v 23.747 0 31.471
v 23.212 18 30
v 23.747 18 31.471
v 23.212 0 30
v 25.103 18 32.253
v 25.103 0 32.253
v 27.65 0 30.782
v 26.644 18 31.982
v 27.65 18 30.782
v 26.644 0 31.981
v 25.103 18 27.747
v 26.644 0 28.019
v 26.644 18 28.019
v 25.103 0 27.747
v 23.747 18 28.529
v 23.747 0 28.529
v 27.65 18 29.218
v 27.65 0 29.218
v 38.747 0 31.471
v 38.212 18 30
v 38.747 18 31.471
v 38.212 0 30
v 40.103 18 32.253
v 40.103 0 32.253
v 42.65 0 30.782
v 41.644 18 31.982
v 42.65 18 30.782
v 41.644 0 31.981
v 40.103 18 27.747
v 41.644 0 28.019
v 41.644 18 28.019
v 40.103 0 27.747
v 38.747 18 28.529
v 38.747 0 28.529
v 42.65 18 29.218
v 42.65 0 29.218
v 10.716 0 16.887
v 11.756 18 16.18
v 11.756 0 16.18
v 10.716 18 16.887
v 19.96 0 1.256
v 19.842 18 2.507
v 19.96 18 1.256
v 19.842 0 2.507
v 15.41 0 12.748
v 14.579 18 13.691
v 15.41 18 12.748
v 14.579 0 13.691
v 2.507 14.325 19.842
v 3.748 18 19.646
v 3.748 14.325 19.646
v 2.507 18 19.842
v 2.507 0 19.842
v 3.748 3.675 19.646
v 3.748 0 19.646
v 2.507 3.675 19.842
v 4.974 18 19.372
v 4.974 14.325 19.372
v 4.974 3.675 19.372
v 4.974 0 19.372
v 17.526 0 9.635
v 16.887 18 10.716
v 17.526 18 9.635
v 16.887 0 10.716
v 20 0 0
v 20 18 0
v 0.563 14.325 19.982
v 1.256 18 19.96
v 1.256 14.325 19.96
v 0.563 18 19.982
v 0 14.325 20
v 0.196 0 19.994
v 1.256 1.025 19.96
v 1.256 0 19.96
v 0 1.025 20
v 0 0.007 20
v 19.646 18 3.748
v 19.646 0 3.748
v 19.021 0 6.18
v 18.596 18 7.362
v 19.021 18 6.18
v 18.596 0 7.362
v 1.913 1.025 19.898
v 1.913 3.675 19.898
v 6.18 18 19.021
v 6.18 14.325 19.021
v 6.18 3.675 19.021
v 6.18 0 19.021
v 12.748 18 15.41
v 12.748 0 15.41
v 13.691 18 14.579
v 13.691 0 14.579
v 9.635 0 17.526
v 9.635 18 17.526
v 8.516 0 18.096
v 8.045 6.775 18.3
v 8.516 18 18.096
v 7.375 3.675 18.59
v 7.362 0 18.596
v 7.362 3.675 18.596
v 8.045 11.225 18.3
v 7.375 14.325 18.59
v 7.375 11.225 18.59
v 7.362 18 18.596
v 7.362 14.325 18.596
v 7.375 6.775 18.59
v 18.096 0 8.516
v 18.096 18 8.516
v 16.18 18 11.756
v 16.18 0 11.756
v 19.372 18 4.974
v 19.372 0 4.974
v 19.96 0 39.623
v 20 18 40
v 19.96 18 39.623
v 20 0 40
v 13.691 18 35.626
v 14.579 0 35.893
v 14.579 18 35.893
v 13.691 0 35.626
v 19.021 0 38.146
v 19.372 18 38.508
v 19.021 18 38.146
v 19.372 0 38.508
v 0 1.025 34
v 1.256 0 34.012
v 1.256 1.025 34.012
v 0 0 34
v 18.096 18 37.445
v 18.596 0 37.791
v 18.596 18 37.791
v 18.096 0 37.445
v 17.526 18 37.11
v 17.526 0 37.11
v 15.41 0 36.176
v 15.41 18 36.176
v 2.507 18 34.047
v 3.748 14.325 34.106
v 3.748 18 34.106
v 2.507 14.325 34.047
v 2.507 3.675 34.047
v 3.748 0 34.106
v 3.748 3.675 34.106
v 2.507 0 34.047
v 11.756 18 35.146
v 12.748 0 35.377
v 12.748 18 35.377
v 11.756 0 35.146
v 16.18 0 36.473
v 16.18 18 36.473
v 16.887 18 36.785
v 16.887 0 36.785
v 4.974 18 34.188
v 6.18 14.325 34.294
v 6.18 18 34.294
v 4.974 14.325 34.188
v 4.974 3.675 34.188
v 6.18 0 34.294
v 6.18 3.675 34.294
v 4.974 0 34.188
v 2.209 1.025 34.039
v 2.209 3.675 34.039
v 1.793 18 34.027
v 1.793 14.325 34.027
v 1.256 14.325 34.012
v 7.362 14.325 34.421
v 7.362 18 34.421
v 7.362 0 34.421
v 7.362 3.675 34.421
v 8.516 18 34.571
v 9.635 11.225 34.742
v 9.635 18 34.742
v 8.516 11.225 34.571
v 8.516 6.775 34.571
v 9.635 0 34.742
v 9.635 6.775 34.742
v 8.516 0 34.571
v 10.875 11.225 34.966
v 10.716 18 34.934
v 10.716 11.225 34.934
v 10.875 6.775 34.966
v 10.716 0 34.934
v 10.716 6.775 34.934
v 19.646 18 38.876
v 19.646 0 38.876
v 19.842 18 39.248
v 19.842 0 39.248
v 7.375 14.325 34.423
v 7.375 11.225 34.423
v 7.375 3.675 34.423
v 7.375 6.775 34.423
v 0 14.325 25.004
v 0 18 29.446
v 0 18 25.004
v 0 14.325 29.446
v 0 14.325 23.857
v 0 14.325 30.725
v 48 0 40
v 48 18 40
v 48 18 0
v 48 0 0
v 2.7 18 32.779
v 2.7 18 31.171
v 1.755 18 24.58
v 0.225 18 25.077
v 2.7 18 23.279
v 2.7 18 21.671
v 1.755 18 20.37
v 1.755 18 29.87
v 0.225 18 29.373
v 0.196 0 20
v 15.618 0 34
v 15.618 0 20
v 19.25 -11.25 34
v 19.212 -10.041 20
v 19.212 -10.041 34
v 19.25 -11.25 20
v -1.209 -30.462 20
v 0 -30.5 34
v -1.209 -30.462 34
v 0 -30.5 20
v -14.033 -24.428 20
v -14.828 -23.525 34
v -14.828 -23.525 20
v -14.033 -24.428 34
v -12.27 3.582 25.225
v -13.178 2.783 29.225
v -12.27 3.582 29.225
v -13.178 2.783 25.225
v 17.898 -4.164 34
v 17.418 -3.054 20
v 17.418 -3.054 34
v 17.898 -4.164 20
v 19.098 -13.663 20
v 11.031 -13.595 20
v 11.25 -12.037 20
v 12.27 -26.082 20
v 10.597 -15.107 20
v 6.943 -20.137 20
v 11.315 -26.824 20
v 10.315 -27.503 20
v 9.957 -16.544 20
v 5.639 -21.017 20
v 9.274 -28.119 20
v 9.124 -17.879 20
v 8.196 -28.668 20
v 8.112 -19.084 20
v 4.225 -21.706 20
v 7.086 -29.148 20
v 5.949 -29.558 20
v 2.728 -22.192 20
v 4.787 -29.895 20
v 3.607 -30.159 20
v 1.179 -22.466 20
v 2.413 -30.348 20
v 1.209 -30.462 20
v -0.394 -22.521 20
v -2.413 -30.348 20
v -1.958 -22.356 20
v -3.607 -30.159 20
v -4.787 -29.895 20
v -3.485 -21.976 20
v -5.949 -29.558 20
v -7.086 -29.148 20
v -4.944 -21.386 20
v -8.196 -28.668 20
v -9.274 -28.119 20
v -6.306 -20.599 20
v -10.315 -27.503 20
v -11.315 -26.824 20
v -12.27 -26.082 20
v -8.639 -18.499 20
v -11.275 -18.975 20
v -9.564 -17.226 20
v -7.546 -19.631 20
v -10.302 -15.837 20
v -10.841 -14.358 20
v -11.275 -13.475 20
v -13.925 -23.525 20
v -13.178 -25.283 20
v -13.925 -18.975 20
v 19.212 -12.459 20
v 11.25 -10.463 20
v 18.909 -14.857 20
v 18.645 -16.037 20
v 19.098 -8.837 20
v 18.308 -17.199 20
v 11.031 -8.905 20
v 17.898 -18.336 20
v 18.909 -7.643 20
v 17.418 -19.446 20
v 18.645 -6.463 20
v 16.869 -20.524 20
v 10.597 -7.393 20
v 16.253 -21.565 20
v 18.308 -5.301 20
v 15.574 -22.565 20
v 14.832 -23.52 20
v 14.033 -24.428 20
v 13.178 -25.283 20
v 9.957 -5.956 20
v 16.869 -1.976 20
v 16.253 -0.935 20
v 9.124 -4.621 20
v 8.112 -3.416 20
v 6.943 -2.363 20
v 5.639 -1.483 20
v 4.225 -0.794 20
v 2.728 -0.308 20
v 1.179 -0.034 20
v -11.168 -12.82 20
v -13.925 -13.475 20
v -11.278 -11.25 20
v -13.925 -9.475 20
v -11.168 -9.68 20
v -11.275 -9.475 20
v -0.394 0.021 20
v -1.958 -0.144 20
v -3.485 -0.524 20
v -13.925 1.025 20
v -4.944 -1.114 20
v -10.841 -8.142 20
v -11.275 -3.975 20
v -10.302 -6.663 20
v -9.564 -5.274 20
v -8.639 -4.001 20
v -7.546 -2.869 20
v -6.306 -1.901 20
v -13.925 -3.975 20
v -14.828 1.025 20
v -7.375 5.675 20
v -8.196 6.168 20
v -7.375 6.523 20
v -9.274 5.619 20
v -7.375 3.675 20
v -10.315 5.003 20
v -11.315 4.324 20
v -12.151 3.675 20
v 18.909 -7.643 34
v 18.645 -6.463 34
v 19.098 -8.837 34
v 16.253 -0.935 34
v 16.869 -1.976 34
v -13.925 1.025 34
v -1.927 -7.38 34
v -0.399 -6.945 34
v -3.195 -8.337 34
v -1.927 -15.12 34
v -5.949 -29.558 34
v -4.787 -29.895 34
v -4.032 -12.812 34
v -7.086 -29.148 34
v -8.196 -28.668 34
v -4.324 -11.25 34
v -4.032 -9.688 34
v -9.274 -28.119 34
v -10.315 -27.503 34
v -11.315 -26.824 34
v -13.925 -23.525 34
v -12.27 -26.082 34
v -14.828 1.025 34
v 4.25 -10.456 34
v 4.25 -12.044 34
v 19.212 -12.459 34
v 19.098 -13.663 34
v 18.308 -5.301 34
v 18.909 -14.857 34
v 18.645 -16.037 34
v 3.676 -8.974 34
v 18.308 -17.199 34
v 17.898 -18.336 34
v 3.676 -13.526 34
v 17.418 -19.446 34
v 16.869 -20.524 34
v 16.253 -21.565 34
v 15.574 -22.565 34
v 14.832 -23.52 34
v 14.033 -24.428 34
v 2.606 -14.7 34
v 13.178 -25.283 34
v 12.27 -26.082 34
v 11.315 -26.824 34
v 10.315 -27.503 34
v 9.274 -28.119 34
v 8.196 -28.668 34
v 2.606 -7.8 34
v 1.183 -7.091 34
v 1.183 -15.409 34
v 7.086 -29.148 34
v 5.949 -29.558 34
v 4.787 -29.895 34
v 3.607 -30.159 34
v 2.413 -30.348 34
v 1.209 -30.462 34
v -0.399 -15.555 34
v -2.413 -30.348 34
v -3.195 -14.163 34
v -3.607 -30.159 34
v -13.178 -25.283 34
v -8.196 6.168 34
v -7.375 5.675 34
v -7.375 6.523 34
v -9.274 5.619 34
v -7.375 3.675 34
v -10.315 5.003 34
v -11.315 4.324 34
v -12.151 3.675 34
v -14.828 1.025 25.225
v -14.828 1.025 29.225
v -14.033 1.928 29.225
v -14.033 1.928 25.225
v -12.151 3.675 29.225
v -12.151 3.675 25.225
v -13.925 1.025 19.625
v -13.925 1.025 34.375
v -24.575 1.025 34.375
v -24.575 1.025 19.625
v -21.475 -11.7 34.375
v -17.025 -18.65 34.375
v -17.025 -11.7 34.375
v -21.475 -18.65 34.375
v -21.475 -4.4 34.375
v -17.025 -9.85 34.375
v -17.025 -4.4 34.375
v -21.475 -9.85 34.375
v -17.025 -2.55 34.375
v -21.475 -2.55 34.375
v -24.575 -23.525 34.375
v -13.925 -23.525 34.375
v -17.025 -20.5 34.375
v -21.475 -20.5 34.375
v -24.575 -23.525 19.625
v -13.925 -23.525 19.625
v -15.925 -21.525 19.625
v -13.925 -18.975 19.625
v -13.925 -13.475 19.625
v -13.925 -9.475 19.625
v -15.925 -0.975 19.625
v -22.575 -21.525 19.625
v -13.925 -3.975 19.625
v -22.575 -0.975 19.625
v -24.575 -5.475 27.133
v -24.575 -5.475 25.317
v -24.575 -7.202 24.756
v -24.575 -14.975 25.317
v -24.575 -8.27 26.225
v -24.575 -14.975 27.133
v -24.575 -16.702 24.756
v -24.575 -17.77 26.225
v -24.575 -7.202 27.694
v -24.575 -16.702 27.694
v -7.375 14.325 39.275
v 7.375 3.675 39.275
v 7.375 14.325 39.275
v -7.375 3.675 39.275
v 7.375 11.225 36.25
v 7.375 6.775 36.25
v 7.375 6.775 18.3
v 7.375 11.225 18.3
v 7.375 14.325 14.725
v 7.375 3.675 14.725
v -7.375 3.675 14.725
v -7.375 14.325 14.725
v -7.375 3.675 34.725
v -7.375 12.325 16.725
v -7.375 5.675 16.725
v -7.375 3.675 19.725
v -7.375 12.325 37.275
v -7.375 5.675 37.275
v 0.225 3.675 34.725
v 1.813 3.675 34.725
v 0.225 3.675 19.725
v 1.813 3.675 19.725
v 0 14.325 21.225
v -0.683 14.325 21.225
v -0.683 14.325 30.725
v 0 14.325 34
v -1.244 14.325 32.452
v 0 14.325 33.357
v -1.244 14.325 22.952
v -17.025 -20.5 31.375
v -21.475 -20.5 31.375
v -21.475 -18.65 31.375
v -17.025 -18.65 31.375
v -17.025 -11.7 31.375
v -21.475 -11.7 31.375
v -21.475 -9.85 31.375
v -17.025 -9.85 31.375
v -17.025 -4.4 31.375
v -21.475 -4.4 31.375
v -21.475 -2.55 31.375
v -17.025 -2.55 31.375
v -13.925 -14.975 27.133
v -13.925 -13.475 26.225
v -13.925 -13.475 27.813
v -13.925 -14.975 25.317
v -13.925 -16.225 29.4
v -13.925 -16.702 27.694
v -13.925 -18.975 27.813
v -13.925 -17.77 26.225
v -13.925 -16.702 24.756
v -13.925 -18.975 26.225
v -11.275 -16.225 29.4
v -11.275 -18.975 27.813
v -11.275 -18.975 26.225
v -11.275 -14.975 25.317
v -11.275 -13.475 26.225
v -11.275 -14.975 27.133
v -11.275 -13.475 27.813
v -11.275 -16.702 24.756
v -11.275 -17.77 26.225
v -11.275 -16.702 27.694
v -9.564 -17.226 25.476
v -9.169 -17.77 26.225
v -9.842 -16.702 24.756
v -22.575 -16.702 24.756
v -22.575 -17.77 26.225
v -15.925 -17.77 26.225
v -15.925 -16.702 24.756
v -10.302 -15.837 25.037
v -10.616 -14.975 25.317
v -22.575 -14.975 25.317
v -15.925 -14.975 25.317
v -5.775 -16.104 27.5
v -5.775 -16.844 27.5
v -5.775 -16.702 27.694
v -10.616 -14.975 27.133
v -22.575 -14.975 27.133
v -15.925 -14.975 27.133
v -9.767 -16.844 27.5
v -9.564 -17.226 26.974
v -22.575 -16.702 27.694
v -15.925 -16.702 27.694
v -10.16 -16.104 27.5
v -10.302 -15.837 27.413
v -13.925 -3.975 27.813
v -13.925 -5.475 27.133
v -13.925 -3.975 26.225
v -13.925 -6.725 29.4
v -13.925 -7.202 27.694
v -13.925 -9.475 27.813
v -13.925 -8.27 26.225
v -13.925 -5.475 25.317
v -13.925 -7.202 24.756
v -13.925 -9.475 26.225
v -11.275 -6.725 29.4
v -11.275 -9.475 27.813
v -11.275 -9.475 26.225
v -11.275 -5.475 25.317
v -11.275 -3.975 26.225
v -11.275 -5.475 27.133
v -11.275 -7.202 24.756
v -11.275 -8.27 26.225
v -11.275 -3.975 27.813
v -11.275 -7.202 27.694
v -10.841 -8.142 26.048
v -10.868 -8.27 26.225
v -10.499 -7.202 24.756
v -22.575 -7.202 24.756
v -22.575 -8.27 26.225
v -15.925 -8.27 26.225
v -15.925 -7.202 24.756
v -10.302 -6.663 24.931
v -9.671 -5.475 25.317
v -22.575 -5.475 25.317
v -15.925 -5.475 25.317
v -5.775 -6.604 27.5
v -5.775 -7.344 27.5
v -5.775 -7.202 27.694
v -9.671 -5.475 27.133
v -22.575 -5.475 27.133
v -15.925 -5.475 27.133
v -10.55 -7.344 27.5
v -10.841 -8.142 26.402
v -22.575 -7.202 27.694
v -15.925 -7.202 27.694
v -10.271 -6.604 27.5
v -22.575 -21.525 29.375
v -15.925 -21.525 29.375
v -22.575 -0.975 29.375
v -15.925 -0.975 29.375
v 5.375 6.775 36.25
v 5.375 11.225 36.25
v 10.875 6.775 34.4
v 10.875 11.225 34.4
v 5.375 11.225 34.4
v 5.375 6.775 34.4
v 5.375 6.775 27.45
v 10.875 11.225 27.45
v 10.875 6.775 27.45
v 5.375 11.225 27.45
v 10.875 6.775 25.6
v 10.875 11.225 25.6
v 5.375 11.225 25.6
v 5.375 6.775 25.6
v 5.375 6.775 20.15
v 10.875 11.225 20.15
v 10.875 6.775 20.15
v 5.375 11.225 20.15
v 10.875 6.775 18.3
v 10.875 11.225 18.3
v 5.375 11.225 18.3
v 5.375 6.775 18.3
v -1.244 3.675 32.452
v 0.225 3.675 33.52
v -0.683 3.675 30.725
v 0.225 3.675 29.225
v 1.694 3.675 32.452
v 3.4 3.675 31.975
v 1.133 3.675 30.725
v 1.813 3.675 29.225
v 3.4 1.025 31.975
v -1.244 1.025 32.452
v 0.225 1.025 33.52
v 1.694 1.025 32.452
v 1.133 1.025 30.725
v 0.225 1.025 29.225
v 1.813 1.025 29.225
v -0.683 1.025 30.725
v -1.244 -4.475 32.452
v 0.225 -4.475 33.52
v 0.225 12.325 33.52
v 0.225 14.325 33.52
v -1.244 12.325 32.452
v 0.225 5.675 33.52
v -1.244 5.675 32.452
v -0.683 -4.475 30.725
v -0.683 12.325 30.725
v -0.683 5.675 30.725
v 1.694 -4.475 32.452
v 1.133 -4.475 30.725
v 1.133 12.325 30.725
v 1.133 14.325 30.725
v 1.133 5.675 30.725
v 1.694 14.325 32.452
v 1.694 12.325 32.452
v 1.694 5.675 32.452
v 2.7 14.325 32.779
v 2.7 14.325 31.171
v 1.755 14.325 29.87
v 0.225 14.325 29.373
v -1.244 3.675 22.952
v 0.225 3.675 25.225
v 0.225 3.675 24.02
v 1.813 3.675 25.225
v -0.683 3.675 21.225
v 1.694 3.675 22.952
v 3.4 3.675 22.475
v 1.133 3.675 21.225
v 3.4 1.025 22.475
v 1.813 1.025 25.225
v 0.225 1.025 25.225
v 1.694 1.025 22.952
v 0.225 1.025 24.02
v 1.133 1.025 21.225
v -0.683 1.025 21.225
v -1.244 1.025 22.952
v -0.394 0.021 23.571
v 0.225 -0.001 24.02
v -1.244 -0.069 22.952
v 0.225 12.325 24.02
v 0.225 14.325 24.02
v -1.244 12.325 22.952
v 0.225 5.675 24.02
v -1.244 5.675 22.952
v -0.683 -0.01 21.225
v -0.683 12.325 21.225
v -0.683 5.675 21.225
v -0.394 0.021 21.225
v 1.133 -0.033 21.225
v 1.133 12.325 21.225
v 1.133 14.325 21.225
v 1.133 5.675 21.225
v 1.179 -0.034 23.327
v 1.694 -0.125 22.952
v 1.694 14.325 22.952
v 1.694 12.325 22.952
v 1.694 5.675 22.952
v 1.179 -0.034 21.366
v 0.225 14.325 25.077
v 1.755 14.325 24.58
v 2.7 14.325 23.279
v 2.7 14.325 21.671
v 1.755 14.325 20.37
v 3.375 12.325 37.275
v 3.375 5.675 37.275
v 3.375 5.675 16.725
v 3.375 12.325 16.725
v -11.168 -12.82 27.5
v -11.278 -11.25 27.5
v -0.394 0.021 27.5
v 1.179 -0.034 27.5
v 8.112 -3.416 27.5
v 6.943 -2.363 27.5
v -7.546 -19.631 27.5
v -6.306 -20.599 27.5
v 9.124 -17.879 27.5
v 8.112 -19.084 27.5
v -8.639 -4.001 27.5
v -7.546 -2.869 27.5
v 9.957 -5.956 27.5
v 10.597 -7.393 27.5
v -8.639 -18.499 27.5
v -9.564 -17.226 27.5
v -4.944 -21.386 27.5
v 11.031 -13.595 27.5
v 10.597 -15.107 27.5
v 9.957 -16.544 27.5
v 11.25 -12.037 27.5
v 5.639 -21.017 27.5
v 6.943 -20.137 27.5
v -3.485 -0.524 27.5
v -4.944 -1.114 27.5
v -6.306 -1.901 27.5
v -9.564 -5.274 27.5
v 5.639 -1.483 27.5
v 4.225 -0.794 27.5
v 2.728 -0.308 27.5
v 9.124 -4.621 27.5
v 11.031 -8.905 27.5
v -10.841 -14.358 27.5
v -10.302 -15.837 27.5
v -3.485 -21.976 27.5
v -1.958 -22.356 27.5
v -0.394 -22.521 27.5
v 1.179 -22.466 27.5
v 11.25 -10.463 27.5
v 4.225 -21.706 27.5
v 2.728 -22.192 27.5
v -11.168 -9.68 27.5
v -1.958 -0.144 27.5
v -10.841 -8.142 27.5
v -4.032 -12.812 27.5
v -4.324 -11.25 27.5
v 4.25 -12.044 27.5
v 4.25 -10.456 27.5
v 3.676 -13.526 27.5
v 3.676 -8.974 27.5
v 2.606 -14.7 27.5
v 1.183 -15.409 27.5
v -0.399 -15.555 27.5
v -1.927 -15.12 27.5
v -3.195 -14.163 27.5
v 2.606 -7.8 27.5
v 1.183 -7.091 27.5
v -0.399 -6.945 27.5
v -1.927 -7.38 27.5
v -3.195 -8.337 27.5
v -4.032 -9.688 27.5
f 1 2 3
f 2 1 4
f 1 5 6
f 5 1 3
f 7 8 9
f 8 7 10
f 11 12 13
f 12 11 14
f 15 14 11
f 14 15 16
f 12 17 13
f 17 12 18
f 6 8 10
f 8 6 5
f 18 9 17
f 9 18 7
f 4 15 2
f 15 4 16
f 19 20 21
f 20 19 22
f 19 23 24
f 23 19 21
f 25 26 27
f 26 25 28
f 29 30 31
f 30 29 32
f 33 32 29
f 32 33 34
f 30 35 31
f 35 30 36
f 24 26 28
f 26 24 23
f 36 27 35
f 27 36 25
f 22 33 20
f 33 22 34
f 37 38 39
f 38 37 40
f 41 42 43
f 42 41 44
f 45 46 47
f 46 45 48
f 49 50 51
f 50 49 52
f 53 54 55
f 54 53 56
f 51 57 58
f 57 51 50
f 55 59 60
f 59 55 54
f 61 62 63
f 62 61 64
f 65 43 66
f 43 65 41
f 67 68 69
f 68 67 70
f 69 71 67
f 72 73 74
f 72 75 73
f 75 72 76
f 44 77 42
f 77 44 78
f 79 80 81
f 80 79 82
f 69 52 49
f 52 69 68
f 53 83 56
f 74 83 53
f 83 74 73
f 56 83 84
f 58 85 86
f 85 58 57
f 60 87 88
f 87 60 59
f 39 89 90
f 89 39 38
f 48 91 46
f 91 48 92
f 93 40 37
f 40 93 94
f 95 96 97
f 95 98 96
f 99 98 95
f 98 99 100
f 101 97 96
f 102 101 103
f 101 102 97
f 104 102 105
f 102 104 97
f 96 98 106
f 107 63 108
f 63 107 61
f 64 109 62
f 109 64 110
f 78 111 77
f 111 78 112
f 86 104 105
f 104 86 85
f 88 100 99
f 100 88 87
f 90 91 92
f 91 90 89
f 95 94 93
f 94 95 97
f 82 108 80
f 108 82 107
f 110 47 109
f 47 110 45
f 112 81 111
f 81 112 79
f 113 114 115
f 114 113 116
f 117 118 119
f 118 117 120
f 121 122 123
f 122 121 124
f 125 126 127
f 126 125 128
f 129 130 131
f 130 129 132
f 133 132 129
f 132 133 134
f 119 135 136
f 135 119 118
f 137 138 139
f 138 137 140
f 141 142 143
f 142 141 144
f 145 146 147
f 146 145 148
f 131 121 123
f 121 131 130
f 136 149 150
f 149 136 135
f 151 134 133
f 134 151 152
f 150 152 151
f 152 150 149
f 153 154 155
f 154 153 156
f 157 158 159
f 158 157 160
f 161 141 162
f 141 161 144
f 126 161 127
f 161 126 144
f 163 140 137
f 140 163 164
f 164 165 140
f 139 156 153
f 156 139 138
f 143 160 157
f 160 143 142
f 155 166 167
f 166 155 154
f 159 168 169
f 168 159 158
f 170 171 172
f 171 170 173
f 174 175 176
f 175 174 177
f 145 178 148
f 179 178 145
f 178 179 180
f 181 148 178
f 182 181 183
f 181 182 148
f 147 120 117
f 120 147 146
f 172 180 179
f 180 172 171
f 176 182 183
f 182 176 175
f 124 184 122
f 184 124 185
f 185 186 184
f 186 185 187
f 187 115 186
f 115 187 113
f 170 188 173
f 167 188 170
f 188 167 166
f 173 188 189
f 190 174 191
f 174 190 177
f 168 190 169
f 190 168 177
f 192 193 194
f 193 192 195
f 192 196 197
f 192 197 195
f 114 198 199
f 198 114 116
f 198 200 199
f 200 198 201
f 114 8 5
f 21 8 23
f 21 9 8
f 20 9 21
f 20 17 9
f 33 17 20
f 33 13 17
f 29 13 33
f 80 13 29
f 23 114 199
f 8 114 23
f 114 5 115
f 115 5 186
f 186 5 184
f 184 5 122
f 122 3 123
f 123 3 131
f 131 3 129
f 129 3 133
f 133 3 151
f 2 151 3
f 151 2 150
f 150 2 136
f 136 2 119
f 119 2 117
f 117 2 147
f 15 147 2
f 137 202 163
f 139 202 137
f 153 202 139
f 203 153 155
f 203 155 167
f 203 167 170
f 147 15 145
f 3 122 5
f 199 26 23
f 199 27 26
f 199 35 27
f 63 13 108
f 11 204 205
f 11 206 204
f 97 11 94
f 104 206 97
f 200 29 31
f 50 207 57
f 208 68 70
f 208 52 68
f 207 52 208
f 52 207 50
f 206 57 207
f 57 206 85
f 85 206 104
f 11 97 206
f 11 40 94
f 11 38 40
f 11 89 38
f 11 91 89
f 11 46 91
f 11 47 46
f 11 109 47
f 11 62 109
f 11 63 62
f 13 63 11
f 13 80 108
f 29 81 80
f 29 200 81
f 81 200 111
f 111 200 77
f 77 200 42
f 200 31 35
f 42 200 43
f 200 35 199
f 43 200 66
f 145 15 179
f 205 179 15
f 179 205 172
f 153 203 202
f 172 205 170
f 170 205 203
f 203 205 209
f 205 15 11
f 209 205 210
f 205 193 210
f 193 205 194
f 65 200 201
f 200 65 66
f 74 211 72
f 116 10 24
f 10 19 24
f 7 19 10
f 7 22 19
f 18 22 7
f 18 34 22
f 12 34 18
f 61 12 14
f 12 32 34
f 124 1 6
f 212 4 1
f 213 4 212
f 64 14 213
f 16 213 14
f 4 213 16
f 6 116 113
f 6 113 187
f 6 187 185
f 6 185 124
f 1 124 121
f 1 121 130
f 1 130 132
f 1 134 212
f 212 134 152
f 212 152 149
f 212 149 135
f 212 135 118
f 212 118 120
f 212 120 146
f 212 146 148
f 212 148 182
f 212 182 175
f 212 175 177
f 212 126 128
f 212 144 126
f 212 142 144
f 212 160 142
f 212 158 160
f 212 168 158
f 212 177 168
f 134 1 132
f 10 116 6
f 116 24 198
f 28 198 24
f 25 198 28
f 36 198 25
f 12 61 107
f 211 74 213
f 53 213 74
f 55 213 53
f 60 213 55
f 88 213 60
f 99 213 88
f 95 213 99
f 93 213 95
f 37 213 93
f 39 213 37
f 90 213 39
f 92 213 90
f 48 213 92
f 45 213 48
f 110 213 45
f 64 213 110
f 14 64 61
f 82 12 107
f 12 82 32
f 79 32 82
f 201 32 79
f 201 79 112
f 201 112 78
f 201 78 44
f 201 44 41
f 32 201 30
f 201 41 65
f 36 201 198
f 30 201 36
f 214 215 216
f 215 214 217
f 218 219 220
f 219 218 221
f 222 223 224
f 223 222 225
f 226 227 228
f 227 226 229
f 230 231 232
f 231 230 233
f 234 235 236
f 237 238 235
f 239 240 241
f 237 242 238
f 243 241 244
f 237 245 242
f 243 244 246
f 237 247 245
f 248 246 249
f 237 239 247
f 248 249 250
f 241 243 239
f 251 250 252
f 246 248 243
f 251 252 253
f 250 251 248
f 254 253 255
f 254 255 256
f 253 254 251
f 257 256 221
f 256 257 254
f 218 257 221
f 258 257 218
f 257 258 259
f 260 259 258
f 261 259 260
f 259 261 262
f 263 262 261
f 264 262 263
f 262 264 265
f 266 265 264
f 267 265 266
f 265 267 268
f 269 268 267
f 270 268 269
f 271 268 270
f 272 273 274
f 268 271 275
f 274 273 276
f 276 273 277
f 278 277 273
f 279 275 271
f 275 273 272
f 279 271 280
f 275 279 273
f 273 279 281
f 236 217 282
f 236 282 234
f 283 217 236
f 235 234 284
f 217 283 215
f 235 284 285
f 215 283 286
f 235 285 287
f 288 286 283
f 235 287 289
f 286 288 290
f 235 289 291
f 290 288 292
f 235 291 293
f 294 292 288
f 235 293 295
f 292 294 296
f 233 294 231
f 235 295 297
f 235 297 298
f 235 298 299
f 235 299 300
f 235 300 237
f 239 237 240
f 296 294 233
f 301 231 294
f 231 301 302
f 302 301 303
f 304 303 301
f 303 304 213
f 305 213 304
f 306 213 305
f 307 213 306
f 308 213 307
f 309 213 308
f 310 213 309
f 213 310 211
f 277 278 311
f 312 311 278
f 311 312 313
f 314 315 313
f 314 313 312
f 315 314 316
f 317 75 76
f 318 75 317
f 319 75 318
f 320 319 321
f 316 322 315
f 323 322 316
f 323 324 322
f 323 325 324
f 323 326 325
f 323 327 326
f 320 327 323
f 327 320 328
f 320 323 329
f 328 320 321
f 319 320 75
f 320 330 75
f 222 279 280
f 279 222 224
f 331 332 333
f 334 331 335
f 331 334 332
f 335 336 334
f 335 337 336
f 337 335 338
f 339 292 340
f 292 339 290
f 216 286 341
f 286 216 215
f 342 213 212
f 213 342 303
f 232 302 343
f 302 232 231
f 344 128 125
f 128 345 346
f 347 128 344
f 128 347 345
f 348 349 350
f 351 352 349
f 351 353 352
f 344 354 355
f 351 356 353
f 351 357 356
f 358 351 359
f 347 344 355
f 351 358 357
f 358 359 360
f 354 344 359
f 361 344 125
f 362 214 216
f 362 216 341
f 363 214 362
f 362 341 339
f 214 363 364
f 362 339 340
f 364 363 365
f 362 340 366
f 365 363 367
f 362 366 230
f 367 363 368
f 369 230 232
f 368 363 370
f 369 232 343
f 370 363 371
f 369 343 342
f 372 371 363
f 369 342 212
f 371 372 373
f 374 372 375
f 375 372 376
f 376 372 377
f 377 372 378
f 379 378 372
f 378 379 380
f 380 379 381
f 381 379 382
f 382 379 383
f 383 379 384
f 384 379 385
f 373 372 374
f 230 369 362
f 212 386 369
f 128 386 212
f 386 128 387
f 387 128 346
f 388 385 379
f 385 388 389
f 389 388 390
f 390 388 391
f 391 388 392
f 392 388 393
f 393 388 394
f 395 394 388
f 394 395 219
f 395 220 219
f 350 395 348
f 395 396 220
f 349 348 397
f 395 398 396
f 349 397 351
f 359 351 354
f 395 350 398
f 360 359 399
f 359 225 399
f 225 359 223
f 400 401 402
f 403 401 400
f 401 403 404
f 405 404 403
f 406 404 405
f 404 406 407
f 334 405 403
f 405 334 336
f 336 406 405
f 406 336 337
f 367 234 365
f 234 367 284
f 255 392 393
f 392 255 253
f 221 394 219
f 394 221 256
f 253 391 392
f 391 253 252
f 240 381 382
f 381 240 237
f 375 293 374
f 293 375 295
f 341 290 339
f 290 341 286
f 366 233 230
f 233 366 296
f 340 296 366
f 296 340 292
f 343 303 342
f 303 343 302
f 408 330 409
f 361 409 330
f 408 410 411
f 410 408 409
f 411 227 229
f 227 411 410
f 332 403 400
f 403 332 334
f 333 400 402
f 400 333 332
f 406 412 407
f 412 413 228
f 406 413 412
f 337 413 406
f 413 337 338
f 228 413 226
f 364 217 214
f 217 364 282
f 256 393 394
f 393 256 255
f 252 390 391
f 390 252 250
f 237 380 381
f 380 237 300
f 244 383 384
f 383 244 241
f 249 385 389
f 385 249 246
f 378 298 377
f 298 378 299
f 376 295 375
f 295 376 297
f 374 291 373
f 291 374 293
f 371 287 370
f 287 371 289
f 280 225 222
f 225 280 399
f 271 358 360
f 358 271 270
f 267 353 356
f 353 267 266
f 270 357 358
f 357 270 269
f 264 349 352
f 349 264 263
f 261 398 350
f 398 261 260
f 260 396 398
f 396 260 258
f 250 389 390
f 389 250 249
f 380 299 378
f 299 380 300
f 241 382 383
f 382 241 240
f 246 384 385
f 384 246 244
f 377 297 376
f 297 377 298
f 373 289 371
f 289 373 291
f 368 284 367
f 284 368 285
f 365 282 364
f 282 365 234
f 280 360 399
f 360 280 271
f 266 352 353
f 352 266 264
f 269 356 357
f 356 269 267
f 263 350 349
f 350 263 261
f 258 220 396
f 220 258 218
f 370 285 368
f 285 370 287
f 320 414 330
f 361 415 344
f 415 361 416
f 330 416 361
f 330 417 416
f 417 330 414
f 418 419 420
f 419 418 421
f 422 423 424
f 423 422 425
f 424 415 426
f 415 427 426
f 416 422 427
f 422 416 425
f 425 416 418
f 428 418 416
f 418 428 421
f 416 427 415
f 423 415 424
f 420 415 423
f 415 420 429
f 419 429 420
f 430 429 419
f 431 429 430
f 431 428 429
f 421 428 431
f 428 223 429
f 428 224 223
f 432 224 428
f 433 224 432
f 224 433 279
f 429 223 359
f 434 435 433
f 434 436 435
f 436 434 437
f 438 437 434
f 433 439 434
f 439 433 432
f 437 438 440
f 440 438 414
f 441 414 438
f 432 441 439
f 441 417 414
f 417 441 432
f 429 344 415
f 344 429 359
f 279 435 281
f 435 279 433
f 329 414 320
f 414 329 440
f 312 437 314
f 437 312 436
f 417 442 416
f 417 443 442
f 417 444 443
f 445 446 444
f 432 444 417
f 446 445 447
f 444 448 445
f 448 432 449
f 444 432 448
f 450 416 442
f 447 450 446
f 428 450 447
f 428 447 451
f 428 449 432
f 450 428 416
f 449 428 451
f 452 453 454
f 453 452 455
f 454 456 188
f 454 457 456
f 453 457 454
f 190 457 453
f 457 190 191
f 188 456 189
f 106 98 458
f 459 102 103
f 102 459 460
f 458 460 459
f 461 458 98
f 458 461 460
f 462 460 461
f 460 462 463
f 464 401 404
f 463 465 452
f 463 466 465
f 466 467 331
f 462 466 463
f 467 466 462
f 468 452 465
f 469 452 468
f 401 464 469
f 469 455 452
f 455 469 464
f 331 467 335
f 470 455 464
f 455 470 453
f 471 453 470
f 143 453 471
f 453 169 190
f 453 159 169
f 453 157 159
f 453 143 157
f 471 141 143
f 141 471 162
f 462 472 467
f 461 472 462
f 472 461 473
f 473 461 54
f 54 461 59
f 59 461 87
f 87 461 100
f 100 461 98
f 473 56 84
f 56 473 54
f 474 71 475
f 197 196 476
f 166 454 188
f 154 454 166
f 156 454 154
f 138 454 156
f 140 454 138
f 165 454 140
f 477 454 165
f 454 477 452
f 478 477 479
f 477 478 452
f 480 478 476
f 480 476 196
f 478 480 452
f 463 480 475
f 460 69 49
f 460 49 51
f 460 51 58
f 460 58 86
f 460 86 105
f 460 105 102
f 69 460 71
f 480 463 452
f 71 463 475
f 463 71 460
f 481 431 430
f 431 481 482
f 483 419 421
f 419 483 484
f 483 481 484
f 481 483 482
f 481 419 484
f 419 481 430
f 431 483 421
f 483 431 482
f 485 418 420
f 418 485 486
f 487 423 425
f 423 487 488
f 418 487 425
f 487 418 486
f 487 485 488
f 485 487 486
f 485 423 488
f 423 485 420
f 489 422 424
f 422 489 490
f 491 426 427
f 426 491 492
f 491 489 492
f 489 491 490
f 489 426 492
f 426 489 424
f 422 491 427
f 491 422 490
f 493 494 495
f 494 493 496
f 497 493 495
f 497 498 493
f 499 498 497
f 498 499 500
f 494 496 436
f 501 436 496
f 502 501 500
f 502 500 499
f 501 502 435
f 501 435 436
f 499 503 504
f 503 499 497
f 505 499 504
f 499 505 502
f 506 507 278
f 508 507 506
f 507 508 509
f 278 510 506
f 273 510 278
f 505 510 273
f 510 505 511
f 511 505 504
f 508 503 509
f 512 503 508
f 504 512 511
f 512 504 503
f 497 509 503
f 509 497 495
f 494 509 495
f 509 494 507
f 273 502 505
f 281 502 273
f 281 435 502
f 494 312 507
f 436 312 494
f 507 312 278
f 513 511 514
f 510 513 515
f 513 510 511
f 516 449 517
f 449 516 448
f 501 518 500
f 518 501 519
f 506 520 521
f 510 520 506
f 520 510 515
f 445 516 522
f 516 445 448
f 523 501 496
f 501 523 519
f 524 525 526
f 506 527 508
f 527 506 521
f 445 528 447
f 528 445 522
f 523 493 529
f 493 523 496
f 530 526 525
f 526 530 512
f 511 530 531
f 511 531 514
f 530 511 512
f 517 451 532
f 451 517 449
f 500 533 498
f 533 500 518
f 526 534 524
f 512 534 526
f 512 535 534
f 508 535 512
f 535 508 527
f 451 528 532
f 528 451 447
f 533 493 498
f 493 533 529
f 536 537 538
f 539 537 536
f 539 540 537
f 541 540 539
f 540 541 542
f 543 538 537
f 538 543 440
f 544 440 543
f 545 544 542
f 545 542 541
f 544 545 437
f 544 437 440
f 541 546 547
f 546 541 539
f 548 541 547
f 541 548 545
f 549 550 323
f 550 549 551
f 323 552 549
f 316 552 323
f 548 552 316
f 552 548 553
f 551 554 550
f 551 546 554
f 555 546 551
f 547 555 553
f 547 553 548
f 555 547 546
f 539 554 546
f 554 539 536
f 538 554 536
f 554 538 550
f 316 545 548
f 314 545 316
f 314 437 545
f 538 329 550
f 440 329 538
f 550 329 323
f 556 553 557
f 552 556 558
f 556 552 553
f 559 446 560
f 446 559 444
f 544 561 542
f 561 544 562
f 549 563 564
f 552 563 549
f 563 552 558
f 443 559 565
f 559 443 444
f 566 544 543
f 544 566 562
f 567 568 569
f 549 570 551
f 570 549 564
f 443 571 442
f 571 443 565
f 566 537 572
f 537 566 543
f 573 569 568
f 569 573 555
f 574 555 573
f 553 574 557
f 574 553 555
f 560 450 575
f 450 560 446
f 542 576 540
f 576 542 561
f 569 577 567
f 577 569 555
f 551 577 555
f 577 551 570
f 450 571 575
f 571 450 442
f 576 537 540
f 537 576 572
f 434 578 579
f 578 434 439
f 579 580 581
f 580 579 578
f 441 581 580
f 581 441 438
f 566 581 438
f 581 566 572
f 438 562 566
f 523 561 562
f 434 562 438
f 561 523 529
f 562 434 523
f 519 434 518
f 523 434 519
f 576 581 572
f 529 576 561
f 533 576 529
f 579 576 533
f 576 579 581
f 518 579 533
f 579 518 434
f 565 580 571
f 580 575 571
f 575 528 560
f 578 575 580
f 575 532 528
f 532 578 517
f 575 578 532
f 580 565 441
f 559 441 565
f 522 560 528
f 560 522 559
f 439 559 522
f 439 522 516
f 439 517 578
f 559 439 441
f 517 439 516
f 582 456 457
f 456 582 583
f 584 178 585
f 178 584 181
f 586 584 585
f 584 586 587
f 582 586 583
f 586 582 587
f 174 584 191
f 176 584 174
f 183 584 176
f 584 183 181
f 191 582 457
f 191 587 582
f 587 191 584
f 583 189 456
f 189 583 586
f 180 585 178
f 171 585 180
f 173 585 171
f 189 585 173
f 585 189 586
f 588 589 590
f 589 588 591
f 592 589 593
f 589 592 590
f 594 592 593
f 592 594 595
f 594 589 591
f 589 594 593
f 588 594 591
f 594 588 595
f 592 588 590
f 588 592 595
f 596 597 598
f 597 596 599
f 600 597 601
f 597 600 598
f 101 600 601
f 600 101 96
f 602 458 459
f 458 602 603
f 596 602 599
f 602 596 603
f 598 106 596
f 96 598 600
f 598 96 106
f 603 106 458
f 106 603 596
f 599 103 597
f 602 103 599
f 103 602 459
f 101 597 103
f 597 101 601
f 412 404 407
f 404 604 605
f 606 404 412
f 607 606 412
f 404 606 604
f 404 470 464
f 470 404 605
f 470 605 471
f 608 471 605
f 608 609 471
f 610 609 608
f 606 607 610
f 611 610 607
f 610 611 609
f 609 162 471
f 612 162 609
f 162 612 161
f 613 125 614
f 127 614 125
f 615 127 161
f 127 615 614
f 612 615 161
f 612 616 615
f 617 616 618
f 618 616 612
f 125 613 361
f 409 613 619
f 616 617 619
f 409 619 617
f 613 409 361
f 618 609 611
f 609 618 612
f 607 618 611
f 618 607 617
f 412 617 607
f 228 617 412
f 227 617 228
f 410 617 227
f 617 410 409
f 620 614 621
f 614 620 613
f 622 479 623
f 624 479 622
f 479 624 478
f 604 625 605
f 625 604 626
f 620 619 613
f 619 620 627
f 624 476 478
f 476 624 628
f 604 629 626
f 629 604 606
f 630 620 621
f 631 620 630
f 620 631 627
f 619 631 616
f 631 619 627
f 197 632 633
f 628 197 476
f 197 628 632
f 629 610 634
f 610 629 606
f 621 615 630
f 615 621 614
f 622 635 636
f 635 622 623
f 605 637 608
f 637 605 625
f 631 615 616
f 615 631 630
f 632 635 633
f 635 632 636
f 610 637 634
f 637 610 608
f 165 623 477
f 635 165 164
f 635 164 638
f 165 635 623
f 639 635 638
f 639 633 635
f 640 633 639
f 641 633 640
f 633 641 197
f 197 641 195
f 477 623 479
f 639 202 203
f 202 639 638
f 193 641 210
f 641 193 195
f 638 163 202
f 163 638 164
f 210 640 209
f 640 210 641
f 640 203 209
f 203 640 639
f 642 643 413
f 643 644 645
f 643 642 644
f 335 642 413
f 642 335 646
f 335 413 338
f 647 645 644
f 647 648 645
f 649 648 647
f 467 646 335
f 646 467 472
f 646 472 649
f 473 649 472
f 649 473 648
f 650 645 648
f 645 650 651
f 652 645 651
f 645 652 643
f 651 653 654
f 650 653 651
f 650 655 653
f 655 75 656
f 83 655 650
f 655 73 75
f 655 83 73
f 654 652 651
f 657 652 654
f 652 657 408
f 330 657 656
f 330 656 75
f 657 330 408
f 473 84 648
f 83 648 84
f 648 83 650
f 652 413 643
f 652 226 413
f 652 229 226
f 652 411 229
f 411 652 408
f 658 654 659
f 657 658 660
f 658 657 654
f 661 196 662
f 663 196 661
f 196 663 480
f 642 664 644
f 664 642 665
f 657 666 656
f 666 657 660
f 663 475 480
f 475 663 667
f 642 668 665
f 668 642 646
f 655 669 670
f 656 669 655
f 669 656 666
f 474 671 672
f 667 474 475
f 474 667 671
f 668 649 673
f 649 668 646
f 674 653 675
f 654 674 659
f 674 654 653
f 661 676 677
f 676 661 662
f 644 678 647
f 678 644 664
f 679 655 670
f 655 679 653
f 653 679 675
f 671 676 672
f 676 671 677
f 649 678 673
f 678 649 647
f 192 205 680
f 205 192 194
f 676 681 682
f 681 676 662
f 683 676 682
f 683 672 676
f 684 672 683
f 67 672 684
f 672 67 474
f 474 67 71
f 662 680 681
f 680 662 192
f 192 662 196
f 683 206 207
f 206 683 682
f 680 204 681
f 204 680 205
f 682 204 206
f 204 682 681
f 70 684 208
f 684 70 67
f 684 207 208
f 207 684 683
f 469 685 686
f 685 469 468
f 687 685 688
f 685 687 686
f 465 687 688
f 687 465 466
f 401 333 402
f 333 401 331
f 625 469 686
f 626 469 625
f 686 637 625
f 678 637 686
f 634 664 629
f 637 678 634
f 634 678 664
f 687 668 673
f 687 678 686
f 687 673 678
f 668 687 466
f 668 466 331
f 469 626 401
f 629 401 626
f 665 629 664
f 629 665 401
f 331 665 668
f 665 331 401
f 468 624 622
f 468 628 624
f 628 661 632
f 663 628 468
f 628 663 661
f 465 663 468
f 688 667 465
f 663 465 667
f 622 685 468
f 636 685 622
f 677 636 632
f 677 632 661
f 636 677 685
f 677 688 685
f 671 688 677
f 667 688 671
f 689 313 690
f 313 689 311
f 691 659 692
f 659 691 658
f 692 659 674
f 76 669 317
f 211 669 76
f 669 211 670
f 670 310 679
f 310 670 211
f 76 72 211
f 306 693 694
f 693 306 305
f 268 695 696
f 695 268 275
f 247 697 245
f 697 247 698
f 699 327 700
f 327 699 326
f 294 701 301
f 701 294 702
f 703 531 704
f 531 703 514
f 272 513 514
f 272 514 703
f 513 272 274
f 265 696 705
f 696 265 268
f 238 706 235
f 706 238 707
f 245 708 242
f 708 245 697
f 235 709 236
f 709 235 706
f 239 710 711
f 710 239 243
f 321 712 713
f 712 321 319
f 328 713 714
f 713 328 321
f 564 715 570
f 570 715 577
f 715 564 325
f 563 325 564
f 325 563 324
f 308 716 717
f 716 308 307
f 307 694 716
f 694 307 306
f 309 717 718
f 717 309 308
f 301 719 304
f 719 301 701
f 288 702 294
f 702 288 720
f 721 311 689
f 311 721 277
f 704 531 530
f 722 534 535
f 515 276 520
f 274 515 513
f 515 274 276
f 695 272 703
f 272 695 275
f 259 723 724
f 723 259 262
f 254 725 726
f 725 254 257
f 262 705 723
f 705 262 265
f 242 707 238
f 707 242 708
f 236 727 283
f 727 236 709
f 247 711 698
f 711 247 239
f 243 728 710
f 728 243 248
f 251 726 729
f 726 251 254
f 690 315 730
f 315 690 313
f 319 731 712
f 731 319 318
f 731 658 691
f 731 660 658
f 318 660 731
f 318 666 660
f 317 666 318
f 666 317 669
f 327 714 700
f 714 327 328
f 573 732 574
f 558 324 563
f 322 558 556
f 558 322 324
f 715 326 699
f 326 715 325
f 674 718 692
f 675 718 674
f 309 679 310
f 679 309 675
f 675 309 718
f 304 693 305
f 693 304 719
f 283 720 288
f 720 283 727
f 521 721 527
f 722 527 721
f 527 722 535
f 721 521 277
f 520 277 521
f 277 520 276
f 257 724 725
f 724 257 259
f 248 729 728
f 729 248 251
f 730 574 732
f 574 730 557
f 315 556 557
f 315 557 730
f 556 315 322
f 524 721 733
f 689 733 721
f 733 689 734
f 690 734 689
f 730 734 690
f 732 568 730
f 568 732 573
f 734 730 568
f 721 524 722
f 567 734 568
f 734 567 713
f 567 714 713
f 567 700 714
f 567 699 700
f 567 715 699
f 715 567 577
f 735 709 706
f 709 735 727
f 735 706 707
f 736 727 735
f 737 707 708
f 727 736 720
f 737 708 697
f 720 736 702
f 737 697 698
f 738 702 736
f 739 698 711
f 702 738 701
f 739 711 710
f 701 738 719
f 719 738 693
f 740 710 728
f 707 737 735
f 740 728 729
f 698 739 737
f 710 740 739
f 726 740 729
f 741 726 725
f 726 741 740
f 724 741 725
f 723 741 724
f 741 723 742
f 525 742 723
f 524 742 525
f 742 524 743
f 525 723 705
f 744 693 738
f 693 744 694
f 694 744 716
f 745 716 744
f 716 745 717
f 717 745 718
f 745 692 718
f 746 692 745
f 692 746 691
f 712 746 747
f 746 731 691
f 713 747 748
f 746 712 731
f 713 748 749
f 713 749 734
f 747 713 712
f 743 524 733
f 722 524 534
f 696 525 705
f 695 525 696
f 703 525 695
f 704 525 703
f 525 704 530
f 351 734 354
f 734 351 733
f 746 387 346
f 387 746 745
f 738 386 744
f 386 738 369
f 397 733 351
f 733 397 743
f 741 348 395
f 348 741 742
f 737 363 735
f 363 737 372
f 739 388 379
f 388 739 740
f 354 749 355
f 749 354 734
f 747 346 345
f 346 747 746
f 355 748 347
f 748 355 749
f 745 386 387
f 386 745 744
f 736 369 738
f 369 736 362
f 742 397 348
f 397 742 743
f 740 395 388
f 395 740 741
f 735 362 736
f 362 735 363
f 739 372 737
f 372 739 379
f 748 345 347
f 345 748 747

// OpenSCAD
use <MCAD/polyholes.scad>;



$fn = 100;

thick = 8;

frame_mount_thick = thick + 10.0;  // the Makerslide is 20mm wide, not 40mm

extrusion_w = 40.0; //mm
extrusion_h = 40.0; //mm

frame_mount_bolt_r  =  2.15;    //mm
frame_mount_pitch   = 15.0;    //mm

bearing_o_d   =         22.0;    //mm
bearing_i_d   =          8.0;    //mm
bearing_h     =          7.0;    //mm
bearing_o_tol =          0.5;    //mm

bearing_mount_r = ((bearing_o_d + bearing_o_tol) / 2.0) + thick;

pulley_o_d  = 18.0;  //mm
pulley_i_d  =  8.0;  //mm
pulley_h    = 18.0;  //mm
pulley_t_d  = 12.0;  //mm

ballscrew_length       = 500.0;    //mm
ballscrew_upper_spigot =  20.0;    //mm
ballscrew_lower_spigot =  40.0;    //mm

mount_length = bearing_o_d + (thick * 2.0) + 10.0;
mount_height = extrusion_h;

microswitch_length              = 20.05;
microswitch_width               =  6.15;
microswitch_height              = 10.25;
microswitch_surround            =  4.00;
microswitch_tol                 =  0.50;
microswitch_screw_pitch         =  9.50;
microswitch_screw_d             =  2.50;
microswitch_screw_h             =  2.90;
microswitch_screw_l_offset      =  5.30;  // initial offset from end
microswitch_screw_head_d        =  4.45;
microswitch_screw_head_h        =  4.50;
microswitch_nut_d               =  5.00;
microswitch_nut_h               =  2.15;
microswitch_nut_trap_tol        =  0.25;
microswitch_nut_trap_h          = 20.00;
microswitch_blade_w             =  3.20;
microswitch_blade_h             =  6.40;   //measured from blade tip to screw hole centre
microswitch_blade_thick         =  0.60;
microswitch_blade_rec_clearance =  2.50;

microswitch_blade_offsets       = [ 1.70, 1.70 + 8.80, 1.70 + 8.80 + 7.30 ];
microswitch_screw_offsets       = [ microswitch_screw_l_offset, microswitch_screw_l_offset + microswitch_screw_pitch ];
microswitch_screw_l             = microswitch_width + microswitch_surround + microswitch_tol * 2.0 + microswitch_nut_h + microswitch_nut_trap_tol * 2.0 + 10.00;

is_y_endstop = true;
is_z_endstop = true;

module hex_nut() {
    n = 6;  // hex nut
    cylinder(h = h, r = r / cos (180 / n), $fn = n);
}

module frame_mount() {
 difference() {
        // frame mount
        cube([mount_length, frame_mount_thick, mount_height]);
        translate([mount_length - 7.5 - frame_mount_pitch, -1.0, extrusion_h * 3.0/4.0]) rotate([-90, 0 ,0]) {
            polyhole(d = frame_mount_bolt_r * 2.0, h = frame_mount_thick + 2.0);
            translate([frame_mount_pitch, 0 , 0]) polyhole(d = frame_mount_bolt_r * 2.0, h = frame_mount_thick + 2.0);
        }
        rotate([-90, 0, 0]) union() {
            translate([0, 0, -1.0]) cylinder(r=20, h = frame_mount_thick + 2.0);
            translate([0, -mount_height, -1.0]) scale([1.0, (mount_height - (20.0 + bearing_h * 2.0)) / 20.0, 1.0]) cylinder(r=20, h = frame_mount_thick + 2.0);
        }
    }
}

module microswitch_surround() {
    cube([microswitch_length + microswitch_surround + microswitch_tol, microswitch_width + microswitch_surround + microswitch_tol, microswitch_height + microswitch_surround +microswitch_tol], center=true);
}

module microswitch_cutout() {
    union() {
        cube([microswitch_length + microswitch_tol, microswitch_width + microswitch_tol, microswitch_height + microswitch_tol], center=true);
        
        
        // the blade and receptacle cut-outs
        for (blade_offset = microswitch_blade_offsets ) {
            
            translate([blade_offset - microswitch_length / 2.0, 0, (microswitch_height + microswitch_surround + microswitch_tol) / 2.0 + (microswitch_blade_h - microswitch_screw_h + 2.0) / 2.0]) cube([microswitch_blade_thick + microswitch_blade_rec_clearance / 2.0, microswitch_blade_w + microswitch_blade_rec_clearance / 2.0, microswitch_blade_h - microswitch_screw_h + 2.0], center = true);
        }
        
        // Some space for accessing the receptacles
        %translate([0, 0, (microswitch_height + microswitch_surround + microswitch_tol) / 2.0 + microswitch_blade_h - microswitch_screw_h]) cube([microswitch_length + microswitch_tol, microswitch_width + microswitch_tol, (microswitch_height + microswitch_tol) / 2.0], center=true);
        
        // the mounting screw holes
      
        for (screw_offset = microswitch_screw_offsets ) {
            // Translate to correct x,z position, i.e. the correct mount hole placement
            translate([screw_offset - (microswitch_length + microswitch_tol) / 2.0, 0, microswitch_height / 2.0 - microswitch_screw_h]) rotate([90,0,0]) {
                
                // screw cutout
                translate([0, 0, -  (microswitch_width + microswitch_surround + microswitch_tol) / 2.0 - microswitch_screw_head_h - microswitch_nut_trap_tol * 2.0]) {
                    // screw hole
                    polyhole(d = microswitch_screw_d, h = microswitch_screw_l);
                    // screw head
                    polyhole(d = microswitch_screw_head_d + microswitch_nut_trap_tol * 2.0, h = microswitch_screw_head_h + microswitch_nut_trap_tol * 2.0);
                    
                }
                
                // nut trap
                n = 6;
                translate([0, 0, (microswitch_width + microswitch_surround + microswitch_tol) / 2.0]) {
                    rotate([0,0,360/6*3/2]) hex_nut(r = microswitch_nut_d / 2 + microswitch_nut_trap_tol, h = microswitch_nut_h + microswitch_nut_trap_tol * 2.0);
                    translate([-1.0 * (microswitch_nut_d) / 2.0 - 1.0 * microswitch_nut_trap_tol, 0, 0]) rotate([90,0,0]) cube([microswitch_nut_d + microswitch_nut_trap_tol * 2.0, microswitch_nut_h + microswitch_nut_trap_tol * 2.0, microswitch_nut_trap_h]);
                }
            }
            
        }
       
    }
}


union() {
    
    translate ([0, -1.0 * (bearing_mount_r - thick), ballscrew_upper_spigot]) {
        difference() {  
                union() {
                    // frame mount
                    //reverse out the translation :-( should be only one rotate-translate-scale :-(
                    translate ([0, 1.0 * (bearing_mount_r - thick), -1.0 * ballscrew_upper_spigot]) frame_mount();
                    // bearing mount
                    cylinder(r = bearing_mount_r, h = bearing_h * 2.0);
                    // end-stop microswitch 
                    translate([-bearing_mount_r, 0, bearing_h]) {
                        rotate([0,0,90]) {
                            microswitch_surround();
                        }
                    }
                    translate([0, (bearing_mount_r - thick) + frame_mount_thick / 2.0, bearing_h]) {
                        rotate([0,90,0]) {
                            microswitch_surround();
                        }
                    }
                }
                // bearing receptacle
                translate ([0, 0, -1.0]) polyhole(d = bearing_o_d + bearing_o_tol, h = bearing_h + 1.5);
                translate ([0, 0, bearing_h - 0.5]) polyhole(d = bearing_i_d + 0.5, h = bearing_h + 1.5);
                // cutout for end-stop microswitch
                translate([-bearing_mount_r,0,-microswitch_surround / 2.0 - 1.0 + bearing_h]) {
                    rotate([0,0,90]) {
                        microswitch_cutout();
                    }
                }
                translate([-microswitch_surround / 2.0, (bearing_mount_r - thick) + frame_mount_thick / 2.0, bearing_h]) {
                    rotate([0,90,0]) {
                        microswitch_cutout();
                    }
                }
        }
    }
}
